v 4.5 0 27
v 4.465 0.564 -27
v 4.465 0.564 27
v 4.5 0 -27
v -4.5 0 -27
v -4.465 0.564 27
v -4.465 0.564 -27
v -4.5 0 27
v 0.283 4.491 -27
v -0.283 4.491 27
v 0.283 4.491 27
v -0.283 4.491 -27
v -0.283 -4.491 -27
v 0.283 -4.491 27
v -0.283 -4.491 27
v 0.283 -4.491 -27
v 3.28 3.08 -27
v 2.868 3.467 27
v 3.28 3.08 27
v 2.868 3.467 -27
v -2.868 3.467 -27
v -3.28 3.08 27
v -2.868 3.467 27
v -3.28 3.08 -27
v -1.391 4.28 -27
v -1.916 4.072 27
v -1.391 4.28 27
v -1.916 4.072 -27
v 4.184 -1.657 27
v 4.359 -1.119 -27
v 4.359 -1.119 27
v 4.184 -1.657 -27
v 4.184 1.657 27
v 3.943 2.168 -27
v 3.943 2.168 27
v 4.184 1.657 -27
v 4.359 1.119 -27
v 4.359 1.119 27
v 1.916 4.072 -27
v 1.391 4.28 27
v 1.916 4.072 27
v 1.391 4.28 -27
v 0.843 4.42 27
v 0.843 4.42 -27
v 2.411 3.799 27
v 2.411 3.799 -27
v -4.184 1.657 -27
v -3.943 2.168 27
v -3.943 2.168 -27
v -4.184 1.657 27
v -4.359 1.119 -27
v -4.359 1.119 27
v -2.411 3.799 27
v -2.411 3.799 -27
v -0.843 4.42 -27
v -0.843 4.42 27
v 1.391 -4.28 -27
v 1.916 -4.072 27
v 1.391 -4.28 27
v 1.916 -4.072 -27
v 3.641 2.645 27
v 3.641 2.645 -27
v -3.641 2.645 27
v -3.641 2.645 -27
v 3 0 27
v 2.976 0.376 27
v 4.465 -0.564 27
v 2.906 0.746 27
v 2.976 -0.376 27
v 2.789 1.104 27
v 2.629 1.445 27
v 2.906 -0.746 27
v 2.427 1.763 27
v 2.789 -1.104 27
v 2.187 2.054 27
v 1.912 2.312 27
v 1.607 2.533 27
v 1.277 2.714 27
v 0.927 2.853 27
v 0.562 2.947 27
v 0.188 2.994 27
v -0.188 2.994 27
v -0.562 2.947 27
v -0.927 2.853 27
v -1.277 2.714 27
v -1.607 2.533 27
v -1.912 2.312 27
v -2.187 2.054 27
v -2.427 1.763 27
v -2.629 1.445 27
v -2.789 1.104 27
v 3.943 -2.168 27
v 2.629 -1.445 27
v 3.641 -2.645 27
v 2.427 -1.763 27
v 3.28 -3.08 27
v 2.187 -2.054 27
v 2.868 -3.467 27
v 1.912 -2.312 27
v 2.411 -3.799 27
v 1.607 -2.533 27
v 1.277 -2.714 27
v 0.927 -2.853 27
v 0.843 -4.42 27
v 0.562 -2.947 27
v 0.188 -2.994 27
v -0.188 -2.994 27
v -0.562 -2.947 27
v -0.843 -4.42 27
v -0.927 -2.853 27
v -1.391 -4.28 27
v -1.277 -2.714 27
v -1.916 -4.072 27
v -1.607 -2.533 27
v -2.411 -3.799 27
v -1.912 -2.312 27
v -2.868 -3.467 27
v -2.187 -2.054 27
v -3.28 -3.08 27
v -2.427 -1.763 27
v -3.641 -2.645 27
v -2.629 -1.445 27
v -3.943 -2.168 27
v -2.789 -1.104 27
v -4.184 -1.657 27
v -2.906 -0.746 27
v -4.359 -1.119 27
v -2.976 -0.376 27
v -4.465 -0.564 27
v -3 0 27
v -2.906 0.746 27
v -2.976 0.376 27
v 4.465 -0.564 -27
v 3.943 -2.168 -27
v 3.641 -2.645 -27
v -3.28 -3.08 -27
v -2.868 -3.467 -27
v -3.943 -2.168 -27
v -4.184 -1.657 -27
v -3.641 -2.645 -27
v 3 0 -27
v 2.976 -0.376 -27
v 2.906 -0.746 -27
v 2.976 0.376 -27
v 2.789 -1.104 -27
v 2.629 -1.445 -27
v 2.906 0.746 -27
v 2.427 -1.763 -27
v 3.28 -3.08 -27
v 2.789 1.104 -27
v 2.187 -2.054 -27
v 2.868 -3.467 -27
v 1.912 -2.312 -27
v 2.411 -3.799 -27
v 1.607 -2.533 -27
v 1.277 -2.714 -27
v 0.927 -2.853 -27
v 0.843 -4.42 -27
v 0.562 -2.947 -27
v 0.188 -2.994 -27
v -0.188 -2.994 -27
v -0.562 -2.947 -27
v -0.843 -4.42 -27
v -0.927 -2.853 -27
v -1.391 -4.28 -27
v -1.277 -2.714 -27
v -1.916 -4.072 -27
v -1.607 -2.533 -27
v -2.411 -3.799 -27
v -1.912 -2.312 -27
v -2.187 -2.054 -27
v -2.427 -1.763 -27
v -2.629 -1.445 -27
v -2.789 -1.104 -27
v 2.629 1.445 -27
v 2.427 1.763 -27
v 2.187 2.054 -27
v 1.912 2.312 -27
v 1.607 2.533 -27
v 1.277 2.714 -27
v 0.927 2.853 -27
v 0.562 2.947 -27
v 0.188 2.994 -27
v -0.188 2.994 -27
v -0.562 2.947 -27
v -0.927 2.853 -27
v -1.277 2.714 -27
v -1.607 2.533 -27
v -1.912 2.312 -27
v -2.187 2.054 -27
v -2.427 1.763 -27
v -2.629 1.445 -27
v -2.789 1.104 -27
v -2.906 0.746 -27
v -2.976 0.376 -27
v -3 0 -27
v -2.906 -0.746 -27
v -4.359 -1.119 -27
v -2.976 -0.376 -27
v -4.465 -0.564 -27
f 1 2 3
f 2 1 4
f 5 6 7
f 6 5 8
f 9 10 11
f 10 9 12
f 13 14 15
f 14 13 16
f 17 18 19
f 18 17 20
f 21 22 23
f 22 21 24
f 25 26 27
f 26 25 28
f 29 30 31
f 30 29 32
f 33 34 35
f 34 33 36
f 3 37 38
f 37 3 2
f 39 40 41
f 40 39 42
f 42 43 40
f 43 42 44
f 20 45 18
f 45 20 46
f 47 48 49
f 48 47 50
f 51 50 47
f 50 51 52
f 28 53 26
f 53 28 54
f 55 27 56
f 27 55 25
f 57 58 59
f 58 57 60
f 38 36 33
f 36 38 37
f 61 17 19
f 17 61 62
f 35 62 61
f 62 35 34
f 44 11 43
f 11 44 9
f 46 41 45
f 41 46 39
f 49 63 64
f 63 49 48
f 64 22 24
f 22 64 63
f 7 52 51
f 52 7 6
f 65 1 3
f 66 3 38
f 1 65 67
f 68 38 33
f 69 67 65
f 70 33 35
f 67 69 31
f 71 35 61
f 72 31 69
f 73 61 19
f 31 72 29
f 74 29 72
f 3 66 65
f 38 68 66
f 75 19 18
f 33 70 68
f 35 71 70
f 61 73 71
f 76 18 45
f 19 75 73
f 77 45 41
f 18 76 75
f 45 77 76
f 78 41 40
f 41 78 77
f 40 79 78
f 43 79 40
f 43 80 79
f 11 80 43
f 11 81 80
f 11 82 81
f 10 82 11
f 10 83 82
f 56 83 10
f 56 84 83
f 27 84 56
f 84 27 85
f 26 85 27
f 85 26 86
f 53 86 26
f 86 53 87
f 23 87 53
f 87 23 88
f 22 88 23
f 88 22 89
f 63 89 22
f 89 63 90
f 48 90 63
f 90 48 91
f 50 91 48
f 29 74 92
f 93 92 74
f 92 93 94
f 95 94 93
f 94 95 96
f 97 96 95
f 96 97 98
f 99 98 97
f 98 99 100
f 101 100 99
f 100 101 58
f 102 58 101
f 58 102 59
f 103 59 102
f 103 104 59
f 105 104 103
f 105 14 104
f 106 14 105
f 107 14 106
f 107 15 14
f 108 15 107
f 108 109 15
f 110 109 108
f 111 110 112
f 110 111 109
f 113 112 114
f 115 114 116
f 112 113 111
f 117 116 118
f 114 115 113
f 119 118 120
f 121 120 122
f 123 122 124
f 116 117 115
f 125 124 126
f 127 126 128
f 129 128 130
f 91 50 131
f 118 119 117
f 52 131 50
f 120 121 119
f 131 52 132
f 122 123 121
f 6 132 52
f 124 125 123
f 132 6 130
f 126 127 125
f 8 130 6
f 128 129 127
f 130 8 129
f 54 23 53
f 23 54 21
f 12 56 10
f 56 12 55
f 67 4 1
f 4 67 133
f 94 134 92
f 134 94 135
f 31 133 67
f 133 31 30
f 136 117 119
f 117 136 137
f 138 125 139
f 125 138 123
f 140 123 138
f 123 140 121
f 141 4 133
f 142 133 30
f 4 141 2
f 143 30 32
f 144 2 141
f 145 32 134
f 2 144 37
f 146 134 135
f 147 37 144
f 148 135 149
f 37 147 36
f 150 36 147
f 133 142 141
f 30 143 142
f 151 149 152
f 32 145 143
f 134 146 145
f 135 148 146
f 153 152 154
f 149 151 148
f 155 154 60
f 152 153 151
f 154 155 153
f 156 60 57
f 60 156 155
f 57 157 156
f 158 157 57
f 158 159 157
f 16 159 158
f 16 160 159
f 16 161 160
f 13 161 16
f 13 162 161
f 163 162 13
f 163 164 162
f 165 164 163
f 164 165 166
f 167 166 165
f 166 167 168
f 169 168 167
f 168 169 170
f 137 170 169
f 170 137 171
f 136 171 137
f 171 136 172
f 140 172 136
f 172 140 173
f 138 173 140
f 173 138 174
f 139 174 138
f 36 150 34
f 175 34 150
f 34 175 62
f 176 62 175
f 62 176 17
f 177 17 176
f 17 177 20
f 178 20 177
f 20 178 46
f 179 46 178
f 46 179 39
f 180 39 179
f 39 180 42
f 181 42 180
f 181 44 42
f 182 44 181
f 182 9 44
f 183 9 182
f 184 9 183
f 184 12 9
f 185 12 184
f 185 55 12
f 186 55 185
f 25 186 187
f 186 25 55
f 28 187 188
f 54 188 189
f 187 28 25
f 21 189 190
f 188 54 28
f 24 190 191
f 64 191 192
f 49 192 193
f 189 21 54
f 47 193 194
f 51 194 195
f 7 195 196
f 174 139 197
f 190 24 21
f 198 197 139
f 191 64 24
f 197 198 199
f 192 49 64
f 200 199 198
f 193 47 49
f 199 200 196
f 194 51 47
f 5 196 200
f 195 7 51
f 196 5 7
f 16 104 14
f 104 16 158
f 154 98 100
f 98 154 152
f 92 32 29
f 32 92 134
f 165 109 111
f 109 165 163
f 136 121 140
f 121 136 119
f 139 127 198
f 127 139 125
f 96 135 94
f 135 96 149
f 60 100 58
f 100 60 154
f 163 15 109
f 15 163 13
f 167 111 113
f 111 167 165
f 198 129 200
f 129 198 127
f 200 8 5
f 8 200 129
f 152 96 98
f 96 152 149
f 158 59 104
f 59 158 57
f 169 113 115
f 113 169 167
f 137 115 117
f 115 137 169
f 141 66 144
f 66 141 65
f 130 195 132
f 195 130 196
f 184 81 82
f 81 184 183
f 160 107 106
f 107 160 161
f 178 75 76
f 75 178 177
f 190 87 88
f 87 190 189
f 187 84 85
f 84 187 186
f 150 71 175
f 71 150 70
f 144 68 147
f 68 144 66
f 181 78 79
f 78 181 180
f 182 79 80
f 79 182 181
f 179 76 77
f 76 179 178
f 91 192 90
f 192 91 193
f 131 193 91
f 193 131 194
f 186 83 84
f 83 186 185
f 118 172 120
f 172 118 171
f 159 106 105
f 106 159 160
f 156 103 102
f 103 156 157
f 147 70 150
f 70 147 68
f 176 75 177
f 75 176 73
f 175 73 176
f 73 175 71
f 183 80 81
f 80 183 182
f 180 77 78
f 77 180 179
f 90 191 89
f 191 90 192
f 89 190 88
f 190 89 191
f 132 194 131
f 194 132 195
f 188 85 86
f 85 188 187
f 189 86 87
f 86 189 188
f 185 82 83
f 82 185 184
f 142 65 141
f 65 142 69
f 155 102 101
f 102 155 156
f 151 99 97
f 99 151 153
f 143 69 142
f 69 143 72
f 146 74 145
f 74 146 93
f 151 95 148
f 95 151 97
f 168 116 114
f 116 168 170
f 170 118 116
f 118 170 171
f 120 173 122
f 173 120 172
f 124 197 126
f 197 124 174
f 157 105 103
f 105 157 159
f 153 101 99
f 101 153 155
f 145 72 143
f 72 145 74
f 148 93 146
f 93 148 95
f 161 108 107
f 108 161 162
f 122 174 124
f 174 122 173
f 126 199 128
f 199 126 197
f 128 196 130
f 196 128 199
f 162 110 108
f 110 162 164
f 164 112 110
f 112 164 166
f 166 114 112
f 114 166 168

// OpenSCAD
$fn = 50;


difference() {
	union() {
		translate(v = [0, 0, -27.0000000000]) {
			cylinder(h = 54, r = 4.5000000000);
		}
	}
	union() {
		translate(v = [0, 0, -100.0000000000]) {
			cylinder(h = 200, r = 3);
		}
	}
}
